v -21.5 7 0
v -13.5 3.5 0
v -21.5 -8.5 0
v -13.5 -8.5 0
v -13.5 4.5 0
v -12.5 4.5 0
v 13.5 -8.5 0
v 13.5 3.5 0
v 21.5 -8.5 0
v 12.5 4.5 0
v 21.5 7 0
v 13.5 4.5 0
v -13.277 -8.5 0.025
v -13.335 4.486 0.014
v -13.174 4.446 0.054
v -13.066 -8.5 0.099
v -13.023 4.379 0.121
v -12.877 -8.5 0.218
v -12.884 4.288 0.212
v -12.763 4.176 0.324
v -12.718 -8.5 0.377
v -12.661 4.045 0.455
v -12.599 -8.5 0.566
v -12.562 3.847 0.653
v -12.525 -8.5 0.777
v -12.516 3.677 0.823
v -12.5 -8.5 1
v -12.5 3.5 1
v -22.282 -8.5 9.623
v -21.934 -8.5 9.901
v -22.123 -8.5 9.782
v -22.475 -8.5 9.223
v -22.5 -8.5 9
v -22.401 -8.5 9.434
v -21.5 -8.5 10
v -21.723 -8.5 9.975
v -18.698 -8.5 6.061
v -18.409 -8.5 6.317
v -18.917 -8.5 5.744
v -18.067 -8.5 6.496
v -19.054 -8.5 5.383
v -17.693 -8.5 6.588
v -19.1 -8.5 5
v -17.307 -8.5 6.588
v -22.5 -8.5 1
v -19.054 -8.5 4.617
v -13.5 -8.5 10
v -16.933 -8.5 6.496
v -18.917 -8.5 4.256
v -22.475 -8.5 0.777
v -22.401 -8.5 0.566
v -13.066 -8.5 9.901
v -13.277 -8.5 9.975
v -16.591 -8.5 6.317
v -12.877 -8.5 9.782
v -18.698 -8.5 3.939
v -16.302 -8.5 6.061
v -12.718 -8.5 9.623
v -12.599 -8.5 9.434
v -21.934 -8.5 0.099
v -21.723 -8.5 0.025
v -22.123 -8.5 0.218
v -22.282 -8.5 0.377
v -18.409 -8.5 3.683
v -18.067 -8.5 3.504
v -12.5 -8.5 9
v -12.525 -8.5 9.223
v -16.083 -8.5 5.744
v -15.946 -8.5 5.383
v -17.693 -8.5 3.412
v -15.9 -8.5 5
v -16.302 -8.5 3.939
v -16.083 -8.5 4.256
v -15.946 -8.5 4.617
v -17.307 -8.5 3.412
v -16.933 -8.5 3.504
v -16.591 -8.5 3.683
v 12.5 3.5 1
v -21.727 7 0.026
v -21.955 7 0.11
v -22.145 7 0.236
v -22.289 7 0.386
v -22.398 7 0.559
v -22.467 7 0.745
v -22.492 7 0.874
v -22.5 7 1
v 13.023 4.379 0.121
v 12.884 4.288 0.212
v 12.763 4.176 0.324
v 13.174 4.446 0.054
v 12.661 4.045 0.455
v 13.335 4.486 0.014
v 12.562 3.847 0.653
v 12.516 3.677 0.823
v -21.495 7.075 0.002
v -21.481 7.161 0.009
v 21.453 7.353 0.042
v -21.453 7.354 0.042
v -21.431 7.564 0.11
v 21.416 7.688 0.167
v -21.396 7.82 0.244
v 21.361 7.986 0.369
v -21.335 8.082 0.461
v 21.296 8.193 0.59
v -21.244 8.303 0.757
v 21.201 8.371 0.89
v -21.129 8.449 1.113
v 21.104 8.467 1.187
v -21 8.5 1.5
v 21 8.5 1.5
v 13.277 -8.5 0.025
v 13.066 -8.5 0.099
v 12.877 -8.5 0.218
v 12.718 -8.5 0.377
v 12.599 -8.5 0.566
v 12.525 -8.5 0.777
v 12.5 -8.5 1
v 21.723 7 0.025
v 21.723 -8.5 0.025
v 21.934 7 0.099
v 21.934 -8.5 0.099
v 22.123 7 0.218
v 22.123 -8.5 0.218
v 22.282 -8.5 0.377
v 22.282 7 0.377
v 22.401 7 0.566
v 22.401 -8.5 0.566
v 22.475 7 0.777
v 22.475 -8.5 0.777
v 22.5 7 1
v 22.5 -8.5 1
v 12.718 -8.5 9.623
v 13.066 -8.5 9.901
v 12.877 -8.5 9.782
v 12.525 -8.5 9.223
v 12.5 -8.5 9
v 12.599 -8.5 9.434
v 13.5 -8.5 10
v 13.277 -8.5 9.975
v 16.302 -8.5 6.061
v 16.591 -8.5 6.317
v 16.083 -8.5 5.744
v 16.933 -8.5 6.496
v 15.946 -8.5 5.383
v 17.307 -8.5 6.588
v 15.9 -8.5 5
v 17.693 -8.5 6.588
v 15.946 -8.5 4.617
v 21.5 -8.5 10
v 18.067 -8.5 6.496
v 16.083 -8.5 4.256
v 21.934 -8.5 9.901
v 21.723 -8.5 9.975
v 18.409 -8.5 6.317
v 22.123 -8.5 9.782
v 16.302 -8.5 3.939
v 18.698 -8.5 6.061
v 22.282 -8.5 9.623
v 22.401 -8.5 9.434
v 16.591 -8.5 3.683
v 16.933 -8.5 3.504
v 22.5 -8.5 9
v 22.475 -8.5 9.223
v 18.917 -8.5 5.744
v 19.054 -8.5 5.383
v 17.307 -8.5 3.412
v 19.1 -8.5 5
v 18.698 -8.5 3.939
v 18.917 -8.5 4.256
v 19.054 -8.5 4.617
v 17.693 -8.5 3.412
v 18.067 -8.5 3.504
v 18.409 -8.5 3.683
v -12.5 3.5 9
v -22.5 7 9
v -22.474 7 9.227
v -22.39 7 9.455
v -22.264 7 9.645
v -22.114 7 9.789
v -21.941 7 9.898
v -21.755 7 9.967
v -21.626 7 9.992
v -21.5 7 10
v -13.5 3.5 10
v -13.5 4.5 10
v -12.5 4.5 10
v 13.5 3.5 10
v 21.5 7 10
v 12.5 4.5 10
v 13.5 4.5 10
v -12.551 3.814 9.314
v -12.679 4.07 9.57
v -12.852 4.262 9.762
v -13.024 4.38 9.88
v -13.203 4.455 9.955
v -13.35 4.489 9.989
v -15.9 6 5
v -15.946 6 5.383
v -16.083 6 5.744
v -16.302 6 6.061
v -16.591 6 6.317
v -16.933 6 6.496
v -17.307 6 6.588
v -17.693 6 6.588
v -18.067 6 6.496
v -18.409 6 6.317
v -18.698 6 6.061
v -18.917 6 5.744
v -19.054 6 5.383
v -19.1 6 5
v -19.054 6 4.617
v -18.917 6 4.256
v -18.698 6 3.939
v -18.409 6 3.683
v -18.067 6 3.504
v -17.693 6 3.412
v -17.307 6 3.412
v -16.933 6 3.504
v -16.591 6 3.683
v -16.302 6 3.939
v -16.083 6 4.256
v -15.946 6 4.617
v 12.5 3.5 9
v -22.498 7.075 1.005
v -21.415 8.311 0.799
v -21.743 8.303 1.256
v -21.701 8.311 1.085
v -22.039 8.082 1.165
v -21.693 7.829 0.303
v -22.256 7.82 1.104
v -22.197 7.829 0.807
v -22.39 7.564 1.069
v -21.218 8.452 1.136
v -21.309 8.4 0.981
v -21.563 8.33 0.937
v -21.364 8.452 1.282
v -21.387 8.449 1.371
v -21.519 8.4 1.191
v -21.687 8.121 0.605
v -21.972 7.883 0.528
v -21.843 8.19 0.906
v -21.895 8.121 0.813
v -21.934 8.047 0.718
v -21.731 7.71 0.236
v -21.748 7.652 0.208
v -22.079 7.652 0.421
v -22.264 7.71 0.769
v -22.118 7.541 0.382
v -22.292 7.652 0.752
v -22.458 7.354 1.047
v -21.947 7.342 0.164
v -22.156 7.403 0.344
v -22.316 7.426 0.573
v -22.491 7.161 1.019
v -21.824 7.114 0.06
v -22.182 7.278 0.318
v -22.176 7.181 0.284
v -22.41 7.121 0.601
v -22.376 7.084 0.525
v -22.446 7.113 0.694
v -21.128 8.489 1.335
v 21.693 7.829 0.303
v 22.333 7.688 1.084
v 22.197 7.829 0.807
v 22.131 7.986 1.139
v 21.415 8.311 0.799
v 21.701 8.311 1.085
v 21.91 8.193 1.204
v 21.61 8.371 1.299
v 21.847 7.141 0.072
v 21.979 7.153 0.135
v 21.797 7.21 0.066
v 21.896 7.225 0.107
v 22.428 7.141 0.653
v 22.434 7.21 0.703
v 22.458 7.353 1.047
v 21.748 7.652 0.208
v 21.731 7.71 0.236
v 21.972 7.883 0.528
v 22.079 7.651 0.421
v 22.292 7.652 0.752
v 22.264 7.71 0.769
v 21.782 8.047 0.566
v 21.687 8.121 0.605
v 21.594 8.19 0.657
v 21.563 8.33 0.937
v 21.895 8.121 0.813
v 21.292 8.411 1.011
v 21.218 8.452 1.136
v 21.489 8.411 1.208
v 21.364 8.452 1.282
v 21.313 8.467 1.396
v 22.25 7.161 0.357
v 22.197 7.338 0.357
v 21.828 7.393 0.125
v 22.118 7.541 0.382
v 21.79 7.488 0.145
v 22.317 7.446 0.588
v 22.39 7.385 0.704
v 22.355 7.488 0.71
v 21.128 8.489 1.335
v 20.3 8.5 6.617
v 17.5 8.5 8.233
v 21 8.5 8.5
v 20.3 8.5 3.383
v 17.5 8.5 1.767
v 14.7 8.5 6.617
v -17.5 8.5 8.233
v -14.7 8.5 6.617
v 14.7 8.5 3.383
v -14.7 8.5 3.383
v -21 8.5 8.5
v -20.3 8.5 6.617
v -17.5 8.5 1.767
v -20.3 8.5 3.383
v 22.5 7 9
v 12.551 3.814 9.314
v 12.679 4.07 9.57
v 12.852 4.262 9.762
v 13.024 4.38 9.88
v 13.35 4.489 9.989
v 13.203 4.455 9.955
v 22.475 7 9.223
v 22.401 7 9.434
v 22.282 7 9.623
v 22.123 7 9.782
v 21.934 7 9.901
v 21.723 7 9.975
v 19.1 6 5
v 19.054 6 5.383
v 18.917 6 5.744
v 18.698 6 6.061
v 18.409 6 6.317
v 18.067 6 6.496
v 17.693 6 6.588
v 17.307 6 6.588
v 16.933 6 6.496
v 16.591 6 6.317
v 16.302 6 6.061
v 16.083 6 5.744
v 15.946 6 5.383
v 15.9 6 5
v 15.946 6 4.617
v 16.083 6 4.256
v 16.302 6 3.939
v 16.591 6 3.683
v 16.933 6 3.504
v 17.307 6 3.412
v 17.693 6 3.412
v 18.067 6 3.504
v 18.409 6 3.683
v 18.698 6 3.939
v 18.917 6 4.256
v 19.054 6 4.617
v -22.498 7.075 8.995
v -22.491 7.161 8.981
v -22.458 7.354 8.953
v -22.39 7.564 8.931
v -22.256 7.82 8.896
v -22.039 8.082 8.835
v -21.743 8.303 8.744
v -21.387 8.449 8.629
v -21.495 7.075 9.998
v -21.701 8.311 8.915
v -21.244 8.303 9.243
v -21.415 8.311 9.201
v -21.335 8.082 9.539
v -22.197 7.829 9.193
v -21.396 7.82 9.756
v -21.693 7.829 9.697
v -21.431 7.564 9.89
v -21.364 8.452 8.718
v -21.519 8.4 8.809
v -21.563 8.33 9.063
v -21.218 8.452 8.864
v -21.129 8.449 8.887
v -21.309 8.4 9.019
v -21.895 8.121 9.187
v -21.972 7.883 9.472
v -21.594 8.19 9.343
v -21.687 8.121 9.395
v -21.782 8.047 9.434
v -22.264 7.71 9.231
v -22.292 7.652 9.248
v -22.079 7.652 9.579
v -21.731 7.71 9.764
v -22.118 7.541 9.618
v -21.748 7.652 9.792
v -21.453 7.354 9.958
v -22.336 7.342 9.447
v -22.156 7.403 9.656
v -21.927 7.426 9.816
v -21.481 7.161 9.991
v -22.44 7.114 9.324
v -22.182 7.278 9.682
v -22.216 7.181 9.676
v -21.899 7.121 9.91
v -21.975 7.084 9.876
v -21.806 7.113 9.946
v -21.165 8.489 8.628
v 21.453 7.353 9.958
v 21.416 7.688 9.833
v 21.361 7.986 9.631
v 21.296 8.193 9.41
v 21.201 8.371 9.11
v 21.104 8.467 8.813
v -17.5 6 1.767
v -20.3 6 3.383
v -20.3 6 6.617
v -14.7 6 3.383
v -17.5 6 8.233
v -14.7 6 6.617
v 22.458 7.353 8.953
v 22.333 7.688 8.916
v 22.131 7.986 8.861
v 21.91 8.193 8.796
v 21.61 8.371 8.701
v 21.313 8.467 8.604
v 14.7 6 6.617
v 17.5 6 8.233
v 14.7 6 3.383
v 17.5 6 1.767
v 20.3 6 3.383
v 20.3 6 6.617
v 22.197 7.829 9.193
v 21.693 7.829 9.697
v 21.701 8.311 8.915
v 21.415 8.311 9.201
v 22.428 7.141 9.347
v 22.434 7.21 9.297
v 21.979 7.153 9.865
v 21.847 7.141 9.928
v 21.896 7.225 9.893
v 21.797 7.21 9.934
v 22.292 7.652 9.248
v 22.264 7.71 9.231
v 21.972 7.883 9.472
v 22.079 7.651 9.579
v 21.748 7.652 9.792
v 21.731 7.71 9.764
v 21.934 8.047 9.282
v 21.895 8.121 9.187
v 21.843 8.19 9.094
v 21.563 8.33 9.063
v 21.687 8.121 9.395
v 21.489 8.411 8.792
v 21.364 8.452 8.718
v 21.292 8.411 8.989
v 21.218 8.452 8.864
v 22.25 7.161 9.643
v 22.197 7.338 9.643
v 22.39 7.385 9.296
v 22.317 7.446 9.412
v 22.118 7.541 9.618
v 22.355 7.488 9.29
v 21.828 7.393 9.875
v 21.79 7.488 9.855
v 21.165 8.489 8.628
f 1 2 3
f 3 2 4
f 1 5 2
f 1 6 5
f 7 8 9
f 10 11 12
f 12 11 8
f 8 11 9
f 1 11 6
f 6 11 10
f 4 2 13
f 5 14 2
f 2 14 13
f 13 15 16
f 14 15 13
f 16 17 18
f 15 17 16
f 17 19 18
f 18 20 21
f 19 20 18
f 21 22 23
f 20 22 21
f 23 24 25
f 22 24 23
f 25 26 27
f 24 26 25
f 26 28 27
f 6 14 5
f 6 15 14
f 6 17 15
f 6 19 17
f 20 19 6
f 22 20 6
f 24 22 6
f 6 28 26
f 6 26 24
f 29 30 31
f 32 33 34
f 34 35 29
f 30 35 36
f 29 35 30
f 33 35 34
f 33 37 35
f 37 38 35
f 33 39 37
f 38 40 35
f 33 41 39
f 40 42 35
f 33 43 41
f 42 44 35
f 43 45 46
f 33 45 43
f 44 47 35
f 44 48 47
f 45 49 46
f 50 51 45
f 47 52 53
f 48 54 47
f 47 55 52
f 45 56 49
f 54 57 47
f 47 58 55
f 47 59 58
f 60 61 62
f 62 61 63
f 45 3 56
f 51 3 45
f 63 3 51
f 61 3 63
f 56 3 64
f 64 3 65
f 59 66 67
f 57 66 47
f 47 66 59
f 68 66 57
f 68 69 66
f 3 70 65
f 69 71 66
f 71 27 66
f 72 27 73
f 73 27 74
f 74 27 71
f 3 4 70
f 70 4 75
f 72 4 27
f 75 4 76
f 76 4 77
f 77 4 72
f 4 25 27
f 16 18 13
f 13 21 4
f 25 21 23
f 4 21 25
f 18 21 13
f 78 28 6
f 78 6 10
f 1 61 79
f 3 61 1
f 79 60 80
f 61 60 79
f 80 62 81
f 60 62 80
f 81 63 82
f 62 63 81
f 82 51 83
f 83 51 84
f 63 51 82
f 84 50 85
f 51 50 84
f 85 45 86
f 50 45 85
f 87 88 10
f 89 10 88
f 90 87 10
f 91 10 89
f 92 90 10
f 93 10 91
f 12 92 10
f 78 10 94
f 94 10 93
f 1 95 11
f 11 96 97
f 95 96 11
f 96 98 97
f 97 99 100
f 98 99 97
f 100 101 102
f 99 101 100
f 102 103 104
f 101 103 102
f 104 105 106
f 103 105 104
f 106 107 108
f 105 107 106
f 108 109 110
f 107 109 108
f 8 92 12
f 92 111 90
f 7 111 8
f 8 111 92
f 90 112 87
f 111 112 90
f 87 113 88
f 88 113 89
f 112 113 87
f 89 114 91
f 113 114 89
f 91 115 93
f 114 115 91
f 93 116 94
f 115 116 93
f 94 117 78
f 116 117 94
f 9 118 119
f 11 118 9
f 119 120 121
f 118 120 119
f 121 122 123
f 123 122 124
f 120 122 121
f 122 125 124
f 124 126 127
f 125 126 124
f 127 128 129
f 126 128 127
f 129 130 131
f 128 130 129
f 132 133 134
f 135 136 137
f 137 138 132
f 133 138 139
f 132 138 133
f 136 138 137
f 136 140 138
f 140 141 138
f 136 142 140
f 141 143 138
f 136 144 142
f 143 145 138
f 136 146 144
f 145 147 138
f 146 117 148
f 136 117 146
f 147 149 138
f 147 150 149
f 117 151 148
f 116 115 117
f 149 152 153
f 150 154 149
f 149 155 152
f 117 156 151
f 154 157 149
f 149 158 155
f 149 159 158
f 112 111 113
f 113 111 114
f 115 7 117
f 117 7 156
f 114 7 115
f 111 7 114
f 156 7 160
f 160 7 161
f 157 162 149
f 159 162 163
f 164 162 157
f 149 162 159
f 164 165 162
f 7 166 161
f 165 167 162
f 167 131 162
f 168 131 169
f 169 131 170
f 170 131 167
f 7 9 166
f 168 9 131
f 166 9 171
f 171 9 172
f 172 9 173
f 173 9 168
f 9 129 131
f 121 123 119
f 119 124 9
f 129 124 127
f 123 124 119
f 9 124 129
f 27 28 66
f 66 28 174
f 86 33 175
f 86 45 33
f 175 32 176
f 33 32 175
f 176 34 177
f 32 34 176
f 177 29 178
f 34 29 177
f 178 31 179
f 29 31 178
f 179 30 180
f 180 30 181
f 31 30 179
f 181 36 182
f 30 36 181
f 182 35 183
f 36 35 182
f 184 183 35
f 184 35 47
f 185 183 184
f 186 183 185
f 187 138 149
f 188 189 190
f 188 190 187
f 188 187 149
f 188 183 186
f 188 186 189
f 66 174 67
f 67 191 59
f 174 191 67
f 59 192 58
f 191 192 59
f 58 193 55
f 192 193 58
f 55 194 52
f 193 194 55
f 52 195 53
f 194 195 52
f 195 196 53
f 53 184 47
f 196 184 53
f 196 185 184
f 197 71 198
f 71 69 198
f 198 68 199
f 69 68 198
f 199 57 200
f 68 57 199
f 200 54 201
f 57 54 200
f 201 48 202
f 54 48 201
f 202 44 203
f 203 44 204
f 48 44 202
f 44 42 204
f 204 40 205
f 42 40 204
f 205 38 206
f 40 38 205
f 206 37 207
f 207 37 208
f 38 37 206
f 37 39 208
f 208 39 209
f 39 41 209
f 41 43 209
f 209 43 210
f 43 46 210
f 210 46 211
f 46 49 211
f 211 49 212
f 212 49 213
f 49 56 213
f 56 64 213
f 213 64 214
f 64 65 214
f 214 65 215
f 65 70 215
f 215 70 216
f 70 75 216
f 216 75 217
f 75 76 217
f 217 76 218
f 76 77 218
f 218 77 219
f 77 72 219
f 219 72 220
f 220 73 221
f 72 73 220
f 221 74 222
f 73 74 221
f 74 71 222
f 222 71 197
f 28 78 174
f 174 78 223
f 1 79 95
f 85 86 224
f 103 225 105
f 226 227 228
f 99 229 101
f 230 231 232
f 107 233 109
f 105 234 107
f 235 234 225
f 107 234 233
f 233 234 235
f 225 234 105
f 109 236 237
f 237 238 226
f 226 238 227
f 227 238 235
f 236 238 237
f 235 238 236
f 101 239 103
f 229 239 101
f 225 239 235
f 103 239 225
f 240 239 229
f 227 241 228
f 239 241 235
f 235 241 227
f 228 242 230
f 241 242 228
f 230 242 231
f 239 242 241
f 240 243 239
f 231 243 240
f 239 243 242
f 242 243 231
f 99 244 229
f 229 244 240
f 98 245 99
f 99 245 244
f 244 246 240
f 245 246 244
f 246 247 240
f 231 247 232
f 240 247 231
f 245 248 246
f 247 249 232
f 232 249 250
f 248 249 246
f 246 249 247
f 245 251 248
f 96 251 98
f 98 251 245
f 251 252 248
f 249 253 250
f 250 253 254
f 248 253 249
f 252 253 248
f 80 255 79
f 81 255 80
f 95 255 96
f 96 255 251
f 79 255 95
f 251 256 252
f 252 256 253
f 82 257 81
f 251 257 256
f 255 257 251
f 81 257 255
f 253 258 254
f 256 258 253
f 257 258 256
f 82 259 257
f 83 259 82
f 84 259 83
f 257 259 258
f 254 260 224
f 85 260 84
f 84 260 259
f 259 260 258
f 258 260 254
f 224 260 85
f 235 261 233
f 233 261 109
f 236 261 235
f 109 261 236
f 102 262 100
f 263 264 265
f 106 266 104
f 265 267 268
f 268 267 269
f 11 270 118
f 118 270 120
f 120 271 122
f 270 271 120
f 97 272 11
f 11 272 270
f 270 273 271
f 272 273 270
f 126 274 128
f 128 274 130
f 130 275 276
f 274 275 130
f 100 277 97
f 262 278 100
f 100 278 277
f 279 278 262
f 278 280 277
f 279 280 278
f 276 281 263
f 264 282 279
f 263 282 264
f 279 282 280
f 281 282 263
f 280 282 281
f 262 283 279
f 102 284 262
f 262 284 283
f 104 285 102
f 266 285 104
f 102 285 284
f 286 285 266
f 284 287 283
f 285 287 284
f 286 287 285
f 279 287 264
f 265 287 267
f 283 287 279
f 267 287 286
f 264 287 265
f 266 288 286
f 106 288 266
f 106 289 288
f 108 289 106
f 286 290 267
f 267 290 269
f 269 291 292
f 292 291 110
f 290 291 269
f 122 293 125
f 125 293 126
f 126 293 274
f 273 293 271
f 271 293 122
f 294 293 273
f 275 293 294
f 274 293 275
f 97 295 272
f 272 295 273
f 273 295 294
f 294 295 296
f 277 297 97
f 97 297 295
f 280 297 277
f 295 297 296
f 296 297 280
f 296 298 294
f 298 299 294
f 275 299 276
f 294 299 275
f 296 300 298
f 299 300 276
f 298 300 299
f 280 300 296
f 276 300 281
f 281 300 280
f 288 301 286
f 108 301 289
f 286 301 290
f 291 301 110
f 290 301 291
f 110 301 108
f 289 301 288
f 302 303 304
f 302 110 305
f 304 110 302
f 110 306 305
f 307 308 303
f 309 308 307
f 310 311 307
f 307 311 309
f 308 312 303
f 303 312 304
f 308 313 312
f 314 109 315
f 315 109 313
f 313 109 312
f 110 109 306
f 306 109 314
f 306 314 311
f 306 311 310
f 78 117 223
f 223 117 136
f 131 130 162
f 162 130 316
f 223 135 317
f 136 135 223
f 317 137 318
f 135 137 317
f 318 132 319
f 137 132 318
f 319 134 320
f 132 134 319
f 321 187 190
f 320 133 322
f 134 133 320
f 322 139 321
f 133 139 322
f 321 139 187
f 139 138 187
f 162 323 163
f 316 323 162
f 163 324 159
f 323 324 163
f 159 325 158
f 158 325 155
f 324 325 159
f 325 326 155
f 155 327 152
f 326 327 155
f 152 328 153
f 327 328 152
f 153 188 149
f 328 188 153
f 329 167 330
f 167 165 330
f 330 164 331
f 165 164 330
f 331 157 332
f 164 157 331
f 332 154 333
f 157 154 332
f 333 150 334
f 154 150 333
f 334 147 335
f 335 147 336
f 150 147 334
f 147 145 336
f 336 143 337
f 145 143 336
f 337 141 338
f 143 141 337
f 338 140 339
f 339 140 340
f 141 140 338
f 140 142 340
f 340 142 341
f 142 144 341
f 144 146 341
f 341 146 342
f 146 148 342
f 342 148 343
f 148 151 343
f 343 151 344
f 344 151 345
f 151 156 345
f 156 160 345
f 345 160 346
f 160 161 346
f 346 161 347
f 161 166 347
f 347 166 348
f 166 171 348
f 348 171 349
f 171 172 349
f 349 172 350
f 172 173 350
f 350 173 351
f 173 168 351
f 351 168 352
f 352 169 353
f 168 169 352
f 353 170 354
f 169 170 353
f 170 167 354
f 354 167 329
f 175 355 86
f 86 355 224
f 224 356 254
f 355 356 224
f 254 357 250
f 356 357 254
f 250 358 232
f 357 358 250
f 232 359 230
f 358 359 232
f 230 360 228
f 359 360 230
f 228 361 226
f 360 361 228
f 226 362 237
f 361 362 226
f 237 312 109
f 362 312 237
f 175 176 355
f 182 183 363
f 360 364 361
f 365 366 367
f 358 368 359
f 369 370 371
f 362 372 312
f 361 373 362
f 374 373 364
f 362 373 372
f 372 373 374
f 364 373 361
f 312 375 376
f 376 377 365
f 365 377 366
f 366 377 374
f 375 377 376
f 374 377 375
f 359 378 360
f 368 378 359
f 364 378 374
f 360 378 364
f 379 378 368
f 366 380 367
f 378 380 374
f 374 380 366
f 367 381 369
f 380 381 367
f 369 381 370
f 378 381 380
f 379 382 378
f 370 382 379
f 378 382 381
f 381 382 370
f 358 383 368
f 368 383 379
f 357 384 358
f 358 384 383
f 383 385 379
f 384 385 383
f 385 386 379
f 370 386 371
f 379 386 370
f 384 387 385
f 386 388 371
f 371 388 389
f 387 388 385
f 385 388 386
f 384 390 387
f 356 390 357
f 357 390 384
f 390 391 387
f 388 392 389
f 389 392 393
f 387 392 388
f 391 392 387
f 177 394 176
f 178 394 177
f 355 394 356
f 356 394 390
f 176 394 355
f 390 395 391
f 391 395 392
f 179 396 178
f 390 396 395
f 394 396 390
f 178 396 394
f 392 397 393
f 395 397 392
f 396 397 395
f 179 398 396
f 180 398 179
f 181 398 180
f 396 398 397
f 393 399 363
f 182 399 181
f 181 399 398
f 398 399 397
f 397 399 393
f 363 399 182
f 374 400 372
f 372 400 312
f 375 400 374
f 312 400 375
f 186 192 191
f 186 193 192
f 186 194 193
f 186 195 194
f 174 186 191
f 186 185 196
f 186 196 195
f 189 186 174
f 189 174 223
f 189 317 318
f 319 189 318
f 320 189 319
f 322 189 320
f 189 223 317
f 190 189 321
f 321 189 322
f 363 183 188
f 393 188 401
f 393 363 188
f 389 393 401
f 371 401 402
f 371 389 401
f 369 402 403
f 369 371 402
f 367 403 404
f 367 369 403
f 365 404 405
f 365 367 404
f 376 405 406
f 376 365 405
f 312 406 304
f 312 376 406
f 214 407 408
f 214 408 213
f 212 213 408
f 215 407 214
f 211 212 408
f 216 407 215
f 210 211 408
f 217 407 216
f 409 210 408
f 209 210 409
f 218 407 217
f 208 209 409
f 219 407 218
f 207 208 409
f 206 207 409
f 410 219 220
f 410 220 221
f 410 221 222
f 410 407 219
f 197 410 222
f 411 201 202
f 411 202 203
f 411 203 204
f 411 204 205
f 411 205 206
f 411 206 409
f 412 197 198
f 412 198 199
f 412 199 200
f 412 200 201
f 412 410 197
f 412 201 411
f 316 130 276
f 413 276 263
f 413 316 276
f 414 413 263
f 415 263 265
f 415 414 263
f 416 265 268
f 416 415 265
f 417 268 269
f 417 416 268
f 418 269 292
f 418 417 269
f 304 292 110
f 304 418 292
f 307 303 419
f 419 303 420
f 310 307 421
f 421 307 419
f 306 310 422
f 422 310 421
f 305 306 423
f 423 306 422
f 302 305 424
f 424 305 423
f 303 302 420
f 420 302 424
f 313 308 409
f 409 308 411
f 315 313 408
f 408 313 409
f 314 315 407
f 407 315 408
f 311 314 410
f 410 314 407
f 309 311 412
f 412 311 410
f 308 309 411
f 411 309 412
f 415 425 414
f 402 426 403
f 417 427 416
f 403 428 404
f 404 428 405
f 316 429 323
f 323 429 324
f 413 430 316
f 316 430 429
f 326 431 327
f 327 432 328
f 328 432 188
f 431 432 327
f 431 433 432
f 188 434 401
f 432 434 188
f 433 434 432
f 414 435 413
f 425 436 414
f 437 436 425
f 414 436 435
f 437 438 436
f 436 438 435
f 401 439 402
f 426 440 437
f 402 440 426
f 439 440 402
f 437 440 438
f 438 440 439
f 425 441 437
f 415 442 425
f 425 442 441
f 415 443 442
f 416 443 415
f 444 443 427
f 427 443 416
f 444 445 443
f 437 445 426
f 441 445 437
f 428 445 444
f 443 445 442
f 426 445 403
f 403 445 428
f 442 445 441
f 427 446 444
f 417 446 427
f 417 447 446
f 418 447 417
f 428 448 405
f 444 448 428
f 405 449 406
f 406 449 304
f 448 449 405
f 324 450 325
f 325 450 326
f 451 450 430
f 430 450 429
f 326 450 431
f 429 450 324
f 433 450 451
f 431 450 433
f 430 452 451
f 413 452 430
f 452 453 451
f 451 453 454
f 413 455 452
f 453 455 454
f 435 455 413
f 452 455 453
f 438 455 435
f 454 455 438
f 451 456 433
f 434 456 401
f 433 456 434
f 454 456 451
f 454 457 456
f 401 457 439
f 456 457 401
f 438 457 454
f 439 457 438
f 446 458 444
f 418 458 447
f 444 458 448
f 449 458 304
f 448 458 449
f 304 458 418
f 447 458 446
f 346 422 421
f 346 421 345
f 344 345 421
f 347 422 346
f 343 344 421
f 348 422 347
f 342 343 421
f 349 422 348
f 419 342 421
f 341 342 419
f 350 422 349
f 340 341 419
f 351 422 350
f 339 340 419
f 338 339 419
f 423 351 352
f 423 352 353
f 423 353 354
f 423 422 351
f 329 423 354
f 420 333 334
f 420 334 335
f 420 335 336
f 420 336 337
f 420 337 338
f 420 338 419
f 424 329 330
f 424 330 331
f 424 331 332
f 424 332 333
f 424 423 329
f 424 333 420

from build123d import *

# Parameters (mm, degrees)
PAD_DEPTH       = 10
SKETCH001_R     = 1.6
POCKET_DEPTH    = 17.001
POCKET001_DEPTH = 2.5
FILLET_R        = 1.5
FILLET001_R     = 1
CHAMFER_SIZE    = 1


with BuildPart() as part:
    # Sketch → Pad (new body)
    with BuildSketch(Plane.XY):
        Polygon((-12.5, -8.5), (-12.5, 3.5), (12.5, 3.5), (12.5, -8.5), (22.5, -8.5), (22.5, 8.5), (-22.5, 8.5), (-22.5, -8.5), align=None)
    extrude(amount=PAD_DEPTH)

    # Sketch001 (on Face4 of Pad) → Pocket (cut, through all)
    with BuildSketch(Plane.XZ.offset(8.5)):
        with Locations((-17.5, 5)):
            Circle(SKETCH001_R)
        with Locations((17.5, 5)):
            Circle(SKETCH001_R)
    extrude(amount=-POCKET_DEPTH, mode=Mode.SUBTRACT)

    # Sketch002 (on Face11 of Pocket) → Pocket001 (cut)
    with BuildSketch(Plane(origin=(0, 8.5, 0), x_dir=(-1, 0, 0), z_dir=(0, 1, 0))):
        Polygon((-17.5, 8.233162), (-20.3, 6.616581), (-20.3, 3.383419), (-17.5, 1.766838), (-14.7, 3.383419), (-14.7, 6.616581), align=None)
        Polygon((17.5, 8.233162), (14.7, 6.616581), (14.7, 3.383419), (17.5, 1.766838), (20.3, 3.383419), (20.3, 6.616581), align=None)
    extrude(amount=-POCKET001_DEPTH, mode=Mode.SUBTRACT)

    # Fillet
    fillet_edges = [part.edges().sort_by_distance(p)[0] for p in [
        (0, 8.5, 0),
        (0, 8.5, 10),
        (-22.5, 8.5, 5),
        (22.5, 8.5, 5),
    ]]
    fillet(fillet_edges, radius=FILLET_R)

    # Fillet001
    fillet001_edges = [part.edges().sort_by_distance(p)[0] for p in [
        (-12.5, -2.5, 0),
        (-12.5, -2.5, 10),
        (-22.5, -0.75, 0),
        (-22.5, -0.75, 10),
        (12.5, -2.5, 10),
        (12.5, -2.5, 0),
        (22.5, -0.75, 0),
        (22.5, -0.75, 10),
    ]]
    fillet(fillet001_edges, radius=FILLET001_R)

    # Chamfer
    chamfer_edges = [part.edges().sort_by_distance(p)[0] for p in [
        (0, 3.5, 0),
        (0, 3.5, 10),
    ]]
    chamfer(chamfer_edges, length=CHAMFER_SIZE)


solid = part.part
